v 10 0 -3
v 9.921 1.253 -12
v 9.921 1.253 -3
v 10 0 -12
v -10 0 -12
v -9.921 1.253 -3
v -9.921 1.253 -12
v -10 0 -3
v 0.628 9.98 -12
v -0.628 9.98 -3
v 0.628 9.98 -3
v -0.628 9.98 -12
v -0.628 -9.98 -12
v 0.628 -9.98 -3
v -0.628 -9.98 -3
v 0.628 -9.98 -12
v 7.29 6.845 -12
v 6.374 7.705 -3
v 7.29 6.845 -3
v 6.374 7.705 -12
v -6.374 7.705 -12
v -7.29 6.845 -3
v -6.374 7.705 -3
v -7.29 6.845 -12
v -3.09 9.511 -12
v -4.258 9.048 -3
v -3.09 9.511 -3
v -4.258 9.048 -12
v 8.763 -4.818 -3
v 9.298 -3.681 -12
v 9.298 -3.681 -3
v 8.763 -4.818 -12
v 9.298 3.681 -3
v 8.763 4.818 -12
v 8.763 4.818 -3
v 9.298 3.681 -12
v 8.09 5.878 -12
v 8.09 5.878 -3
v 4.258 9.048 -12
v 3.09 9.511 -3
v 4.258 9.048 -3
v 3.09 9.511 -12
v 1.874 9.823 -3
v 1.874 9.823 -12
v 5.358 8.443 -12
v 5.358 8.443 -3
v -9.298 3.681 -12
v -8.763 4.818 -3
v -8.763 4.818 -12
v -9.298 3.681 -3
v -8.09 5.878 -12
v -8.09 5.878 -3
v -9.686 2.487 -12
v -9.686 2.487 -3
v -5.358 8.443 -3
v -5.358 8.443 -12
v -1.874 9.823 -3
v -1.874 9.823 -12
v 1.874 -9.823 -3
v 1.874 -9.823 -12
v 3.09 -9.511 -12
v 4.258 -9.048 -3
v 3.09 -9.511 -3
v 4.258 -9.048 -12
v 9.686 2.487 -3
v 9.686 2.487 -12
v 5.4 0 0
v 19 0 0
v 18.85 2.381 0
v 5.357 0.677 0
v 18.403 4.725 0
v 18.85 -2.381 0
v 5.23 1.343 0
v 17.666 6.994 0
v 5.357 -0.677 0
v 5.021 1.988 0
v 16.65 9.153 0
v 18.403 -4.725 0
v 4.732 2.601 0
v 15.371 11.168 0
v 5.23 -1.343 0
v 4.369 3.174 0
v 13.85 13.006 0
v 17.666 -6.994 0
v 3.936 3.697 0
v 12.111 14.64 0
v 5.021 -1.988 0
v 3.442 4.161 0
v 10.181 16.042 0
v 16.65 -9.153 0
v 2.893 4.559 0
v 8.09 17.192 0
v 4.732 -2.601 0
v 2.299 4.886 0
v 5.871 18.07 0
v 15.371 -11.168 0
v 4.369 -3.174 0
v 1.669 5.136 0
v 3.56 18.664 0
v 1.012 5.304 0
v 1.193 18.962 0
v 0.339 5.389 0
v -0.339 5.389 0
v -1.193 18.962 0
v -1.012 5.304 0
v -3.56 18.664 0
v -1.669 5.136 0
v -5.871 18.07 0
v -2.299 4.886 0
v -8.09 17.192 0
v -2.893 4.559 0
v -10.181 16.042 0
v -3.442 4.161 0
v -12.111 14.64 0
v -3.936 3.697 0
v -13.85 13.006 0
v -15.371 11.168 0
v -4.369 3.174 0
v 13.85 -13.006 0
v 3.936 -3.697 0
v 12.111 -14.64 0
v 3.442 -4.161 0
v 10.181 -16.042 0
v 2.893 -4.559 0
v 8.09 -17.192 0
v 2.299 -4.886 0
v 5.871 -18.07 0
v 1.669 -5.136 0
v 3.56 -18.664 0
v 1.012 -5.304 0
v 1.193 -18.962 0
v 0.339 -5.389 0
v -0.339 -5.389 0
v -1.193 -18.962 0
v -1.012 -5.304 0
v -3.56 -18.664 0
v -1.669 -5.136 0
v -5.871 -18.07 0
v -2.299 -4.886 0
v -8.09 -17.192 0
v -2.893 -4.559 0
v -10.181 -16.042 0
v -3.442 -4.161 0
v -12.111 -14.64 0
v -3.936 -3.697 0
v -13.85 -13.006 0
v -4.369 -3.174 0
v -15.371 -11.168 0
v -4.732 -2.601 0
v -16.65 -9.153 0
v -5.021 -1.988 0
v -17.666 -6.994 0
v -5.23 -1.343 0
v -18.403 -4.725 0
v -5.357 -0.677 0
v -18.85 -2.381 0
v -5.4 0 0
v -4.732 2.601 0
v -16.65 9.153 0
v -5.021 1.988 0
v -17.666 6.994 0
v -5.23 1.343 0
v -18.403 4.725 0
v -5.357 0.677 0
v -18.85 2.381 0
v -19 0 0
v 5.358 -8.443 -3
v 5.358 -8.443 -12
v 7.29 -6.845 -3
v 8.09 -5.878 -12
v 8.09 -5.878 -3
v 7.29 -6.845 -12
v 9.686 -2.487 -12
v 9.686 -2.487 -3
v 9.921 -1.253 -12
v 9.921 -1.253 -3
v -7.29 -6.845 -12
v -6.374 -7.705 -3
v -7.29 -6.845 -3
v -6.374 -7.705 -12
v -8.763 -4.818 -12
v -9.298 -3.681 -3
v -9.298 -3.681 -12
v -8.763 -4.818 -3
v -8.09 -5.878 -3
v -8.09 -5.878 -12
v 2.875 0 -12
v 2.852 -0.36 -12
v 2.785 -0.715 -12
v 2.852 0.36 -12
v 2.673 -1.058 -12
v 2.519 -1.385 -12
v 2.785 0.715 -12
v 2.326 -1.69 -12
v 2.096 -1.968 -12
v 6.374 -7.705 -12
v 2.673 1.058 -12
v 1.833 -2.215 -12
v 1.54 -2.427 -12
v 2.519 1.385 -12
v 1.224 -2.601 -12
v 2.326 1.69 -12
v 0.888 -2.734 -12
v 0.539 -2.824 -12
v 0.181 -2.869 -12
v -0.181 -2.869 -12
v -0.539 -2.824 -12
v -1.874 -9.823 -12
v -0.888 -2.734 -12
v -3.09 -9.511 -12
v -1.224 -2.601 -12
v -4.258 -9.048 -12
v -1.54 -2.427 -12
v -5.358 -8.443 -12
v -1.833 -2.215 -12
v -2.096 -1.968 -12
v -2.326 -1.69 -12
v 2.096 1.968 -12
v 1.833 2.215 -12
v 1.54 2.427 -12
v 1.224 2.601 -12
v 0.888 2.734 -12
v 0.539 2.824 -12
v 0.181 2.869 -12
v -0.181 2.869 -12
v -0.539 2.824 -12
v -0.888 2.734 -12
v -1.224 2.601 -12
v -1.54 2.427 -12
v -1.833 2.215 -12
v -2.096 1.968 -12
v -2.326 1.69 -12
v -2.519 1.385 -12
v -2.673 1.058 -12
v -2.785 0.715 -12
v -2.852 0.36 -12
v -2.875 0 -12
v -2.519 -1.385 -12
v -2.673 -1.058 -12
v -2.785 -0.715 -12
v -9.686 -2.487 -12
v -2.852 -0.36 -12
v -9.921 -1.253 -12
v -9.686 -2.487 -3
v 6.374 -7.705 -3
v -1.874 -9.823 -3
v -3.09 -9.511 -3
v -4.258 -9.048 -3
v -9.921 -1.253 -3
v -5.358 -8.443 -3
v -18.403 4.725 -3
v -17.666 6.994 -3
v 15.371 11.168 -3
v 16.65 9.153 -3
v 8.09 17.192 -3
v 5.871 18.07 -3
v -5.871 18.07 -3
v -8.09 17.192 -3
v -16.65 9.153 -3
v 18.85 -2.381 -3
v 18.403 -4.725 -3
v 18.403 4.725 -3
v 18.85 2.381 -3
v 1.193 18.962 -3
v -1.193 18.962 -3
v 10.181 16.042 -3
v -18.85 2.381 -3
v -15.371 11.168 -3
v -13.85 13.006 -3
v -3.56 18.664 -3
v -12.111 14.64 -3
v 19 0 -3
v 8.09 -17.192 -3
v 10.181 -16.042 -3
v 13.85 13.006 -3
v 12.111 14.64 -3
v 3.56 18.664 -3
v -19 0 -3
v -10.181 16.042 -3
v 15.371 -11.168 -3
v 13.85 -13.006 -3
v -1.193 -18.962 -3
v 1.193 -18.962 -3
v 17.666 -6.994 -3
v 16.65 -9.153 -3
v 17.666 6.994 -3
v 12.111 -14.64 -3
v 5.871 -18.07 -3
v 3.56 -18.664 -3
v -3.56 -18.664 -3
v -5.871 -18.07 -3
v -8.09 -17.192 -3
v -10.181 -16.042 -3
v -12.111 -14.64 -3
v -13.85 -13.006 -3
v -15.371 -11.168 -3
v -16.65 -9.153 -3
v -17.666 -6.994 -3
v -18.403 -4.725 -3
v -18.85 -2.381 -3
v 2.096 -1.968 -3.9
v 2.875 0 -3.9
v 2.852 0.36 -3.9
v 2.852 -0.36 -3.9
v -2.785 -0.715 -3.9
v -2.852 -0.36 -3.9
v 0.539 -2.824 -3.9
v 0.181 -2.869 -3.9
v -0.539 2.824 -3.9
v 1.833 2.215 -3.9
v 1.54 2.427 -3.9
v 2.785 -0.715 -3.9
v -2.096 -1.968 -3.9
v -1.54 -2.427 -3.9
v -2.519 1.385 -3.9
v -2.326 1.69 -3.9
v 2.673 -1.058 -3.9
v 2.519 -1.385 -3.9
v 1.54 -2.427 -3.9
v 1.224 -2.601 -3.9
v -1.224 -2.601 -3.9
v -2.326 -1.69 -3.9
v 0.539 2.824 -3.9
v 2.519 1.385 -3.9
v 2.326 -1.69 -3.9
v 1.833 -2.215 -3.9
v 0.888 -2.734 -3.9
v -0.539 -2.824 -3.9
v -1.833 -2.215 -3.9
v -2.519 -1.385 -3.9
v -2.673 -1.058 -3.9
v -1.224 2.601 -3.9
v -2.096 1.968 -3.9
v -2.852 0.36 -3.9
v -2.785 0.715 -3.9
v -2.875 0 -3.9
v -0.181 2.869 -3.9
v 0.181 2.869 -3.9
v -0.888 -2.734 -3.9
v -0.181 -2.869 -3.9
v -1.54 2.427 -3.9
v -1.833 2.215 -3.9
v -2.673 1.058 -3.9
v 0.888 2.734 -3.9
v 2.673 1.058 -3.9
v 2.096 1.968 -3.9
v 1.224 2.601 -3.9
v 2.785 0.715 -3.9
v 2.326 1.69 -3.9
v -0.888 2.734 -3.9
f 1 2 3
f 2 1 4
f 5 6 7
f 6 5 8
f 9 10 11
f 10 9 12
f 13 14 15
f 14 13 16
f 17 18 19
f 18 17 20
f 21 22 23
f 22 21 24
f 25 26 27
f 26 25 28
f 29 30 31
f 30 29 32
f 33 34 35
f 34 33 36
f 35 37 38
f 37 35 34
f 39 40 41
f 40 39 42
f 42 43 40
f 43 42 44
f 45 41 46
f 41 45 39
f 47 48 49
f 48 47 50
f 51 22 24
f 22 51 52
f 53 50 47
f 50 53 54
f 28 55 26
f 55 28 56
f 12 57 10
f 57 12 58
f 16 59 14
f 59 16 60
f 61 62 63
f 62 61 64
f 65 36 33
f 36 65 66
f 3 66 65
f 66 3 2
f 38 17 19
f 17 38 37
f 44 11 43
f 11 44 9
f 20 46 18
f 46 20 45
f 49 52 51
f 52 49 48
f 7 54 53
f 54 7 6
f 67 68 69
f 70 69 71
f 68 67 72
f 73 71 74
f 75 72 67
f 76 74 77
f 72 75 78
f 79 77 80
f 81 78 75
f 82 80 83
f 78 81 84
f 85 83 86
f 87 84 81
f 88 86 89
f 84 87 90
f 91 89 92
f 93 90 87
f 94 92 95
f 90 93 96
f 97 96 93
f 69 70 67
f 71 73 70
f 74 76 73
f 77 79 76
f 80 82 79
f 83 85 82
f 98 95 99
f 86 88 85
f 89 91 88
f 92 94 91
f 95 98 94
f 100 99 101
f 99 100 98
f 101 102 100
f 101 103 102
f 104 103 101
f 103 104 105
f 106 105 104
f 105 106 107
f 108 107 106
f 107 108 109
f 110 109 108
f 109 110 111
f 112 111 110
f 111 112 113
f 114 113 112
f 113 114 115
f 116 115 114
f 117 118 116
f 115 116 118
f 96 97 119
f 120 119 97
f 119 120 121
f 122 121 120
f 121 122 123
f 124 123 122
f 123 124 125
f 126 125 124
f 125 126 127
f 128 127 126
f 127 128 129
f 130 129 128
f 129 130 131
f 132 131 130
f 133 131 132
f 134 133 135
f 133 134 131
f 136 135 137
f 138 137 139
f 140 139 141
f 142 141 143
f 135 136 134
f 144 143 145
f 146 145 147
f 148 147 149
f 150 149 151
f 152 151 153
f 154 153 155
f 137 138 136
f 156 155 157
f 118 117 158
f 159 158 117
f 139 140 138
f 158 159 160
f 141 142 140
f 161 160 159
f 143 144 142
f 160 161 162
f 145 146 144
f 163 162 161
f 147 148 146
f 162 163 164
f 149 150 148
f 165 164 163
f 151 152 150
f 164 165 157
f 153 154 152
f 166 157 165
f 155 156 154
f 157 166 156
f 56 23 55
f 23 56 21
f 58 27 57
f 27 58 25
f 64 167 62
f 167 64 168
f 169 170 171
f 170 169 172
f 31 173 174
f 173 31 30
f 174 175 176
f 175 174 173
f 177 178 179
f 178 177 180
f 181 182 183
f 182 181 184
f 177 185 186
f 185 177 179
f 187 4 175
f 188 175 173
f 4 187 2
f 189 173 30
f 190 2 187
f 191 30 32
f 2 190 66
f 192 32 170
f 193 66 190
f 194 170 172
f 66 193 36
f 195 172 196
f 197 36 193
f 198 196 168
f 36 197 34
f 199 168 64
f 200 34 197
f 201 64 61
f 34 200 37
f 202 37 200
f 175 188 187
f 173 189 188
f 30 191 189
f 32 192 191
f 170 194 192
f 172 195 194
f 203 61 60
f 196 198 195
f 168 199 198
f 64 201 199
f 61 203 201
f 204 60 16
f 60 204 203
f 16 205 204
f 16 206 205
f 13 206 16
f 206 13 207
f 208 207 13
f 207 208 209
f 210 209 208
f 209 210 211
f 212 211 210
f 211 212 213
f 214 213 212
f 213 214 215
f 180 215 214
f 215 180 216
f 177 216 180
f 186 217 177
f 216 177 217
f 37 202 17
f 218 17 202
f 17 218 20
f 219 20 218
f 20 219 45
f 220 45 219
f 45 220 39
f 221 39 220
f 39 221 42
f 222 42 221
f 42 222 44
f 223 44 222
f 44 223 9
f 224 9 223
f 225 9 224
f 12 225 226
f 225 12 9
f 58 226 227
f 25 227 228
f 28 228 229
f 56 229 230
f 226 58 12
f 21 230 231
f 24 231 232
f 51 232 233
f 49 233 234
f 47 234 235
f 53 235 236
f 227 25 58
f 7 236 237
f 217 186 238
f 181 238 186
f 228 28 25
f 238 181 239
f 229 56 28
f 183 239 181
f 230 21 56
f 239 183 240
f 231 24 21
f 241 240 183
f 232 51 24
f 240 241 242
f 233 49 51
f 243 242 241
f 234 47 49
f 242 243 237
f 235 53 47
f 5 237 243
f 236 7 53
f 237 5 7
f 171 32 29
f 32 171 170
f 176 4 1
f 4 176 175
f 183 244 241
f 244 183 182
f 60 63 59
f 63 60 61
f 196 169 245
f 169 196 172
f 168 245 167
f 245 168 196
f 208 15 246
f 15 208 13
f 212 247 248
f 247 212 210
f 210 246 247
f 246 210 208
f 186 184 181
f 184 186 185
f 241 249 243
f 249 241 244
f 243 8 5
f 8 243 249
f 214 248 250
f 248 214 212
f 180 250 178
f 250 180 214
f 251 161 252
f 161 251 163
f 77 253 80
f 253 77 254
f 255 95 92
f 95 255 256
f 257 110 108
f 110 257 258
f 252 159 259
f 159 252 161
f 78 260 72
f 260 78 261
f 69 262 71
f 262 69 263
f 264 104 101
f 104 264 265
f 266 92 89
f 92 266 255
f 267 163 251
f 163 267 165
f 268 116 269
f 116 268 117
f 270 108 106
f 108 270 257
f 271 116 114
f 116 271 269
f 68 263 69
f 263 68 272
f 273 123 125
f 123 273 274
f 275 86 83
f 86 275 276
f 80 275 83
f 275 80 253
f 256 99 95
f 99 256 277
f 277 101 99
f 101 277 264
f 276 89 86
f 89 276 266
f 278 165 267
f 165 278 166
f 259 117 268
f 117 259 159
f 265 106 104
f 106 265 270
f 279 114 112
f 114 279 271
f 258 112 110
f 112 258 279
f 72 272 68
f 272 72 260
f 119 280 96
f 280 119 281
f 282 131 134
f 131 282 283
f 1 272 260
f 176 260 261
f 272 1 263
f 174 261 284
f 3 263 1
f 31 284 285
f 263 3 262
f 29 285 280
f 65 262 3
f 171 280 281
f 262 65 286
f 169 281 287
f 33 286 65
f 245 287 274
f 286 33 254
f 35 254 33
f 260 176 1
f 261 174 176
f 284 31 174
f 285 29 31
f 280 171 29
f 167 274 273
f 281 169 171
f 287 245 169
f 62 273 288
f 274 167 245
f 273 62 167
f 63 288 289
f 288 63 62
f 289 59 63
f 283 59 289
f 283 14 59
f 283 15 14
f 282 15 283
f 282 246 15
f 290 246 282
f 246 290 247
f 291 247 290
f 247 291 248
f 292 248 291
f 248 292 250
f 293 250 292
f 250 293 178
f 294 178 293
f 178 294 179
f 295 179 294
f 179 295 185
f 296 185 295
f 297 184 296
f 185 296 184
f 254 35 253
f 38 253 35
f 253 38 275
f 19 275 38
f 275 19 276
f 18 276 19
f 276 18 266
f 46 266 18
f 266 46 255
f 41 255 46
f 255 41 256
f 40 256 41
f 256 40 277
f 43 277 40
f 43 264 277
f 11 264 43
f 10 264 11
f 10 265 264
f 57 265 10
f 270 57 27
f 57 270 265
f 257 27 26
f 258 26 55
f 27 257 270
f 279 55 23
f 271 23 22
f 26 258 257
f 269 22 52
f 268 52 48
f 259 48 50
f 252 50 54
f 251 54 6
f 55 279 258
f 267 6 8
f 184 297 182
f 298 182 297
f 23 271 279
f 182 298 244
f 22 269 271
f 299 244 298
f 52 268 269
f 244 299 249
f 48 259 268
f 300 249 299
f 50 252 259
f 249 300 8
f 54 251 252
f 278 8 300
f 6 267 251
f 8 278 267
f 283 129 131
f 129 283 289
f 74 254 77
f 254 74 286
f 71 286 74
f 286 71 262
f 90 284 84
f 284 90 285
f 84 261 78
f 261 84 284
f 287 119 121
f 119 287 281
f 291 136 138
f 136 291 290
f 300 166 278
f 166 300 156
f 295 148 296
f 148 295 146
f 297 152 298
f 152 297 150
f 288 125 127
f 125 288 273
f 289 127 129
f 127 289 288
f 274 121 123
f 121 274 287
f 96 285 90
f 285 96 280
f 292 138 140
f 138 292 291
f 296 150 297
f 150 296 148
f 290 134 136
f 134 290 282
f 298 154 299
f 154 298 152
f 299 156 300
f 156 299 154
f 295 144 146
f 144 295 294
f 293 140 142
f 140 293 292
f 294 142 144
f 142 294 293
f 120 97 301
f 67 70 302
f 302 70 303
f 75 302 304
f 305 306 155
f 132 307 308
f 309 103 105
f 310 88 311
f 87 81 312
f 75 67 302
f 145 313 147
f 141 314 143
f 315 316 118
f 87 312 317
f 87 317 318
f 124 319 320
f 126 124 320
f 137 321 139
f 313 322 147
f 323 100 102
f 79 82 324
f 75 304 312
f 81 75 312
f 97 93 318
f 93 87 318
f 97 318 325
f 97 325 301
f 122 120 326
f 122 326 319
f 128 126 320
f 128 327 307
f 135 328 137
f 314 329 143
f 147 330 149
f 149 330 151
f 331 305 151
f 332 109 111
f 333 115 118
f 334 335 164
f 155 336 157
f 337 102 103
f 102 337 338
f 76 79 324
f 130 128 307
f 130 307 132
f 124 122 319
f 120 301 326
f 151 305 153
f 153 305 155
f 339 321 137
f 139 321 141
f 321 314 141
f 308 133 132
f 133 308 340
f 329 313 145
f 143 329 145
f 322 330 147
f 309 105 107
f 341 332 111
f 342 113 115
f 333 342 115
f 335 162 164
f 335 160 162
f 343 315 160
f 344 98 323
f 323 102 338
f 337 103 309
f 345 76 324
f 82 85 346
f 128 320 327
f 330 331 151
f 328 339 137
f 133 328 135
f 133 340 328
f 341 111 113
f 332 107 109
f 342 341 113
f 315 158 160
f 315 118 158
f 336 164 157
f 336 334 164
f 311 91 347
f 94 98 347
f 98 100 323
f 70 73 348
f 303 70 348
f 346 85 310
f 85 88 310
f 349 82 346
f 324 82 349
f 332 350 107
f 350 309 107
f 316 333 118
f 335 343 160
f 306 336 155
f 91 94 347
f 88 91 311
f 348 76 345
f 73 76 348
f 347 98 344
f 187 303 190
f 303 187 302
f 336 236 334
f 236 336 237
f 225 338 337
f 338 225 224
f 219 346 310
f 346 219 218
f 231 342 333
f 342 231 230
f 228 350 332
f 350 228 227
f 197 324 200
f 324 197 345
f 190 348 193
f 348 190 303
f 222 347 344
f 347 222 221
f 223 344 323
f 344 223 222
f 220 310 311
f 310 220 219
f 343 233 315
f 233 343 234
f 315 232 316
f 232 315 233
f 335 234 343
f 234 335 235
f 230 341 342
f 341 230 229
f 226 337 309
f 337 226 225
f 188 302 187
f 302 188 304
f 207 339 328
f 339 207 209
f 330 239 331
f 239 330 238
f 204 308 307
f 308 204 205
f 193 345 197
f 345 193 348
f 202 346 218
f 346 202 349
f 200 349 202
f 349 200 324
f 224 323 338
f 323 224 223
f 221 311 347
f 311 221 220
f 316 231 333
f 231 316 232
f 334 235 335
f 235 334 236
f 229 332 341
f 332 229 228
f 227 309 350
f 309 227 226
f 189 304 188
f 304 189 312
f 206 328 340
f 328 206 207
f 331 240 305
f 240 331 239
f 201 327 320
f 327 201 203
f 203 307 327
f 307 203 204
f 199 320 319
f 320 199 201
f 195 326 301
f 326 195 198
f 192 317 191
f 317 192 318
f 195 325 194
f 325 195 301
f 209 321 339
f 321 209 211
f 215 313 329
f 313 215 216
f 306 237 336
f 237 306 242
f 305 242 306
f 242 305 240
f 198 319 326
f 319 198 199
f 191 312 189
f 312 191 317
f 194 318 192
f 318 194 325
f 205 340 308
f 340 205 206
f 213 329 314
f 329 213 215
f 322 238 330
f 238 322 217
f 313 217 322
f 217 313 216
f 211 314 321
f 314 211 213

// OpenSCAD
$fn = 50;


difference() {
	union() {
		translate(v = [0, 0, -12.0000000000]) {
			cylinder(h = 12, r = 10.0000000000);
		}
		translate(v = [0, 0, -3.0000000000]) {
			cylinder(h = 3, r = 19.0000000000);
		}
	}
	union() {
		translate(v = [0, 0, 0]) {
			rotate(a = [0, 0, 0]) {
				difference() {
					union() {
						#translate(v = [0, 0, -12.0000000000]) {
							cylinder(h = 12, r = 2.6000000000);
						}
						#translate(v = [0, 0, -3.9000000000]) {
							cylinder(h = 3.9000000000, r = 10.0000000000, r1 = 2.8750000000, r2 = 5.4000000000);
						}
						#translate(v = [0, 0, -12.0000000000]) {
							cylinder(h = 12, r = 2.8750000000);
						}
						#translate(v = [0, 0, -12.0000000000]) {
							cylinder(h = 12, r = 2.6000000000);
						}
					}
					union();
				}
			}
		}
	}
}
